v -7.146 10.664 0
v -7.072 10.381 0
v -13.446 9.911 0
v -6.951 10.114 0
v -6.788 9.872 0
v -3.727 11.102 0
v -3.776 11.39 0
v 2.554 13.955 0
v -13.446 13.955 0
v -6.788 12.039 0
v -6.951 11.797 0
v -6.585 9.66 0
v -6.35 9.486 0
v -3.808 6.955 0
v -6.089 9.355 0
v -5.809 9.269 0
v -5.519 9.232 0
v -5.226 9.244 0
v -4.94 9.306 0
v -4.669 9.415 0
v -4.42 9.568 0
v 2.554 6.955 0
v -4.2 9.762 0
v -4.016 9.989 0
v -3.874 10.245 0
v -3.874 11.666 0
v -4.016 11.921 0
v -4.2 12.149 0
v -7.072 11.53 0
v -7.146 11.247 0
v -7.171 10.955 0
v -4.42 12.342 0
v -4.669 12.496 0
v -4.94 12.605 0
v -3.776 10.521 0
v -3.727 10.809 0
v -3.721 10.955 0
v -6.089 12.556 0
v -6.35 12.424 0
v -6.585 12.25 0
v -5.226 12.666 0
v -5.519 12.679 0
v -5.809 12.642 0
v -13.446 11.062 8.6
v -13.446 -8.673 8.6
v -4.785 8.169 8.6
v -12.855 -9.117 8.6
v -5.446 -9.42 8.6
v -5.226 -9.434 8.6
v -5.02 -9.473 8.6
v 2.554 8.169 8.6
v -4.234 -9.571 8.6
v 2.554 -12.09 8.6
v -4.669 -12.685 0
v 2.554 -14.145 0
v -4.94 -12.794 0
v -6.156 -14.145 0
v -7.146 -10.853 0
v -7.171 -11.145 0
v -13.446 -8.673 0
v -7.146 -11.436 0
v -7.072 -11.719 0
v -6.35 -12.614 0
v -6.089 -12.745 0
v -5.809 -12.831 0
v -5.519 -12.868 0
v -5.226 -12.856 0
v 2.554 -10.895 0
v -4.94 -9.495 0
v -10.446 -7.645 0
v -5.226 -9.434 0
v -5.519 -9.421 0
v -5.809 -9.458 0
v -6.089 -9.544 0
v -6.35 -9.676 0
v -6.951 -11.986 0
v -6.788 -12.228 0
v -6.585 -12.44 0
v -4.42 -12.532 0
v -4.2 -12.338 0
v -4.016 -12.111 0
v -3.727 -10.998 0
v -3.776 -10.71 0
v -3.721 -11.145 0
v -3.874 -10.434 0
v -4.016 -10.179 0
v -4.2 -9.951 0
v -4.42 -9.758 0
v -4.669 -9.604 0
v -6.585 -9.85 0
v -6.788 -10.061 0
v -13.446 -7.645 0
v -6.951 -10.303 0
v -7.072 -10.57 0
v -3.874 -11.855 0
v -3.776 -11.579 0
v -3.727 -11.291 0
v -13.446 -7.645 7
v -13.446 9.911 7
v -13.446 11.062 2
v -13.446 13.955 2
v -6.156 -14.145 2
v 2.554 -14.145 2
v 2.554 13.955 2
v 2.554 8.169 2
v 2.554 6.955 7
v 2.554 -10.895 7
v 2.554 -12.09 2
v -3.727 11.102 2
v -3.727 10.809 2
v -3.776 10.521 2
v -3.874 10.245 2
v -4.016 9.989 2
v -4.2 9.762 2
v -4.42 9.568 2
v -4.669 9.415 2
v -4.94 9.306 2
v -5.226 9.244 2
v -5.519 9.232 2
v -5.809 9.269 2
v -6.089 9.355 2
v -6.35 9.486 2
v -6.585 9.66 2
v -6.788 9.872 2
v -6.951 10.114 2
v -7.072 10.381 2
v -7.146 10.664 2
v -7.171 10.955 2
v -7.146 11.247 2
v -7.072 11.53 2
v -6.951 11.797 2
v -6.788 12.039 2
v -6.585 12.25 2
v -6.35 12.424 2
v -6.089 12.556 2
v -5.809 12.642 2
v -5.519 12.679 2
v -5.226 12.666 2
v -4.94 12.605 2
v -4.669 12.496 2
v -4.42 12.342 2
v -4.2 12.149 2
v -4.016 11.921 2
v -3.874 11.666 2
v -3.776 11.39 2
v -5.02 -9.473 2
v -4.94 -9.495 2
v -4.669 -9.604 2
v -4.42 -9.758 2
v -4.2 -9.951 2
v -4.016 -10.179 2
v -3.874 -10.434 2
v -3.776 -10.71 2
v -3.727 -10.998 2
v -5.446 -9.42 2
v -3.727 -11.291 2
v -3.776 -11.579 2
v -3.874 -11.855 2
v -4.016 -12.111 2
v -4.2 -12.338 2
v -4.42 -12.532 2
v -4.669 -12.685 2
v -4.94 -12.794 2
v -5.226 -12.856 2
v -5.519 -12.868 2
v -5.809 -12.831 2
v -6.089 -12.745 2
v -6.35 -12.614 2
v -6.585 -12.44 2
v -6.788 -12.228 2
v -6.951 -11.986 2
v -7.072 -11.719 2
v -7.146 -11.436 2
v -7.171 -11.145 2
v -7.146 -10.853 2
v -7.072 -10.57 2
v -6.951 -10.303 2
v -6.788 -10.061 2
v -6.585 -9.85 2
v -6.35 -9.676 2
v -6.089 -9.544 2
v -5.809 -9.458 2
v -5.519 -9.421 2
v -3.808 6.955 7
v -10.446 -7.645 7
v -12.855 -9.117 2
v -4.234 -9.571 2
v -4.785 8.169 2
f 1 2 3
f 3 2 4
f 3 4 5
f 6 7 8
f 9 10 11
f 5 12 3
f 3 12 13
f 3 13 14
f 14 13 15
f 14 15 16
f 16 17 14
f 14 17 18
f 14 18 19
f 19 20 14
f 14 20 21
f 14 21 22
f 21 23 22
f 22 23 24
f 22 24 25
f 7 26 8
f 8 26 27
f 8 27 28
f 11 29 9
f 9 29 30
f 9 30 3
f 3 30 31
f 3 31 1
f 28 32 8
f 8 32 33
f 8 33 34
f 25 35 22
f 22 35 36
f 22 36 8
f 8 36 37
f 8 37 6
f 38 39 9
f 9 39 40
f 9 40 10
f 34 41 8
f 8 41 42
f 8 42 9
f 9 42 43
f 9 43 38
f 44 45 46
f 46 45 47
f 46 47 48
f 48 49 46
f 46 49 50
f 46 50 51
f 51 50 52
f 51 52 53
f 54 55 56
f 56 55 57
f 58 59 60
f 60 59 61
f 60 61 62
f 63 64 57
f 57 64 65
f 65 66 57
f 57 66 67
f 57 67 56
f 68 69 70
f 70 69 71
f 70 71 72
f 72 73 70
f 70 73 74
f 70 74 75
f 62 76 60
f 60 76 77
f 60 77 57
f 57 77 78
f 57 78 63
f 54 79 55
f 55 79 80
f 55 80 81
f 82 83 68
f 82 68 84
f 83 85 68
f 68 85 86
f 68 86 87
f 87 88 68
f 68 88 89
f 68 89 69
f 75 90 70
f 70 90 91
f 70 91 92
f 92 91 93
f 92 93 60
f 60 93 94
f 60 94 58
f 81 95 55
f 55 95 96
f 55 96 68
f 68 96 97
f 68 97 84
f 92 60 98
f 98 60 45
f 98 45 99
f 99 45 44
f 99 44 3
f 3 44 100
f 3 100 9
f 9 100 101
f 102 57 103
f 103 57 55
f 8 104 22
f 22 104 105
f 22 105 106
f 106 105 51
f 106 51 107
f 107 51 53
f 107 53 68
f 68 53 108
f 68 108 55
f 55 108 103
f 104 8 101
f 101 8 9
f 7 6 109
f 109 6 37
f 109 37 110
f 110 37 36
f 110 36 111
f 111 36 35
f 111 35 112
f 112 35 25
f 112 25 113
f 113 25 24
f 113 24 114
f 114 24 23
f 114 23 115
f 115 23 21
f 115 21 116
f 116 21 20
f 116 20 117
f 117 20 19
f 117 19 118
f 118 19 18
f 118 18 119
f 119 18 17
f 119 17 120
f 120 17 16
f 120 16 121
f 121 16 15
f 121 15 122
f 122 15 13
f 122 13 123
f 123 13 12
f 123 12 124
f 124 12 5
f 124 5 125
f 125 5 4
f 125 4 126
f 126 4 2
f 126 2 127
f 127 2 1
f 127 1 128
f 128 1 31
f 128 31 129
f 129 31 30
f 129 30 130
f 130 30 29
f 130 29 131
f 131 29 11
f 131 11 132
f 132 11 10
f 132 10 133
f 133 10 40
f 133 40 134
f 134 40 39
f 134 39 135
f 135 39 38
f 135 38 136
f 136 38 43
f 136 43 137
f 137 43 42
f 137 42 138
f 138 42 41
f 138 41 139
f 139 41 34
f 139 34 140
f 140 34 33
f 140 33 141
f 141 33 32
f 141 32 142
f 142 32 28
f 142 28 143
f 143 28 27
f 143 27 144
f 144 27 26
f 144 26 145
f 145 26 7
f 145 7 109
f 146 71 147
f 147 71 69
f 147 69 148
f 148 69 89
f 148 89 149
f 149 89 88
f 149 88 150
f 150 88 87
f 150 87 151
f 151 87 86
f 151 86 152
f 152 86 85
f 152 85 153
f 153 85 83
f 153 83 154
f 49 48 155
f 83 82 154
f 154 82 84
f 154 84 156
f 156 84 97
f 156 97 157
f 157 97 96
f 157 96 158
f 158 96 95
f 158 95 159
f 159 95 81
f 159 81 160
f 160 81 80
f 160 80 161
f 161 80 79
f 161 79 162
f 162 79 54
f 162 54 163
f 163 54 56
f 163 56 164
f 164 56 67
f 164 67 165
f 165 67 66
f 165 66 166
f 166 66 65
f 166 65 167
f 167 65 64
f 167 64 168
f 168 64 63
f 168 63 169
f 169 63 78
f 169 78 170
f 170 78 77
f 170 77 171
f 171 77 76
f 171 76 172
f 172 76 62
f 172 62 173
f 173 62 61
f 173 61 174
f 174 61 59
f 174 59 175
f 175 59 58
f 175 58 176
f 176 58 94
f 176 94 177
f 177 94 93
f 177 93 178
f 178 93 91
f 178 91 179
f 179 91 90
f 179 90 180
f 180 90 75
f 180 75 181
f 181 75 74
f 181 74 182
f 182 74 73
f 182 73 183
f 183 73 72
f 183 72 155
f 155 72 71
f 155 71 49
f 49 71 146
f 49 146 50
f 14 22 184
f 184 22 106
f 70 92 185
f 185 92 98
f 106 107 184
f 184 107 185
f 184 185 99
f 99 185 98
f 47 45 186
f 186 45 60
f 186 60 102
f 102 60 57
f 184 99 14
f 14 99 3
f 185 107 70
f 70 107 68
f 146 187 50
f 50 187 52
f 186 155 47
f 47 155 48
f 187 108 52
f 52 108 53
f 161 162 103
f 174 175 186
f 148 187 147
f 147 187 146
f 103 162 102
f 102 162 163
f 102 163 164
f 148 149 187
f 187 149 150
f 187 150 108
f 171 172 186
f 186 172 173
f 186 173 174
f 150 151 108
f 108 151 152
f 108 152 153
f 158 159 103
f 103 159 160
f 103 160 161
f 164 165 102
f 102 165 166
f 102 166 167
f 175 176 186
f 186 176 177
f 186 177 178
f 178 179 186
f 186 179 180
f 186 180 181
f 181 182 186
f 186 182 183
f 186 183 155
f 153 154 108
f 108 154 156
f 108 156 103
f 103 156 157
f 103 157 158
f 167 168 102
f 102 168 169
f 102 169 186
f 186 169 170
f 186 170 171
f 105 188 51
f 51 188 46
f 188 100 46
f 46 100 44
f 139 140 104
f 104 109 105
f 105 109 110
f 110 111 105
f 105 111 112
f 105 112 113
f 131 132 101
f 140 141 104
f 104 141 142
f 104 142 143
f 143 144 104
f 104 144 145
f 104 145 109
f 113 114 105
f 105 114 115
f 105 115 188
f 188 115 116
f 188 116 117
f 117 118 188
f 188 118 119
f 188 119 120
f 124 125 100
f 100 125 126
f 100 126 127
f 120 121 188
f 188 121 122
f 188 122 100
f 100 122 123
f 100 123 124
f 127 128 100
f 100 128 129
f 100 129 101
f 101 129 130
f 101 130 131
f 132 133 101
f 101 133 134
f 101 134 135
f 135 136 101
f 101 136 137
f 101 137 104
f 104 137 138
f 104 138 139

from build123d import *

# Parameters (mm, degrees)
ESQUISSE1_W             = 16
ESQUISSE1_H             = 28.1
ESQUISSE1_R             = 1.725
BOSS_EXTRU_1_DEPTH      = 8.6
ESQUISSE2_W             = 16
ESQUISSE2_H             = 14.6
ENL_V_MAT_EXTRU_2_DEPTH = 7
ENL_V_MAT_EXTRU_5_DEPTH = 16
ENL_V_MAT_EXTRU_6_DEPTH = 7
ENL_V_START             = -2
ENL_V_MAT_EXTRU_9_DEPTH = 18


with BuildPart() as part:
    # Esquisse1 → Boss.-Extru.1 (new body)
    with BuildSketch(Plane.XY):
        with Locations((-5.445538763, -0.094706778)):
            Rectangle(ESQUISSE1_W, ESQUISSE1_H)
        with Locations(Location((-5.445538763, 10.955293222, 0), (0, 0, 180))):
            Circle(ESQUISSE1_R, mode=Mode.SUBTRACT)
        with Locations(Location((-5.445538763, -11.144706778, 0), (0, 0, 180))):
            Circle(ESQUISSE1_R, mode=Mode.SUBTRACT)
    extrude(amount=BOSS_EXTRU_1_DEPTH)

    # Esquisse2 → Enlèv. mat.-Extru.2 (cut)
    with BuildSketch(Plane(origin=(0, 0, 0), x_dir=(-1, 0, 0), z_dir=(0, 0, -1))):
        with Locations((5.445538763, -0.344706778)):
            Rectangle(ESQUISSE2_W, ESQUISSE2_H)
    extrude(amount=-ENL_V_MAT_EXTRU_2_DEPTH, mode=Mode.SUBTRACT)

    # Esquisse4 → Enlèv. mat.-Extru.5 (cut)
    with BuildSketch(Plane(origin=(0, 0, 0), x_dir=(-1, 0, 0), z_dir=(0, 0, -1))):
        Polygon((8.103346265, -14.144706778), (13.445538763, -14.144706778), (13.445538763, -8.673372576), (6.156041758, -14.144706778), align=None)
    extrude(amount=-ENL_V_MAT_EXTRU_5_DEPTH, mode=Mode.SUBTRACT)

    # Esquisse5 → Enlèv. mat.-Extru.6 (cut)
    with BuildSketch(Plane(origin=(0, 0, 0), x_dir=(-1, 0, 0), z_dir=(0, 0, -1))):
        Polygon((-2.554461237, -7.644706778), (-2.554461237, -10.894706778), (10.445538763, -7.644706778), align=None)
        Polygon((13.445538763, 6.955293222), (13.445538763, 9.910651633), (3.808396856, 6.955293222), align=None)
    extrude(amount=-ENL_V_MAT_EXTRU_6_DEPTH, mode=Mode.SUBTRACT)

    # Esquisse6 → Enlèv. mat.-Extru.9 (cut)
    with BuildSketch(Plane(origin=(0, 0, 0), x_dir=(-1, 0, 0), z_dir=(0, 0, -1)).offset(ENL_V_START)):
        Polygon((-2.554461237, 13.955293222), (-2.554461237, 8.169439353), (4.78538363, 8.169439353), (13.445538763, 11.062366287), (13.445538763, 13.955293222), align=None)
        with BuildLine():
            Line((6.156041758, -14.144706778), (12.854526116, -9.116973515))
            Line((12.854526116, -9.116973515), (5.445538763, -9.419706778))
            ThreePointArc((5.445538763, -9.419706778), (6.66529796, -9.924947581), (7.170538763, -11.144706778))
            ThreePointArc((7.170538763, -11.144706778), (4.386718709, -12.506516271), (5.020364742, -9.472925677))
            Line((5.020364742, -9.472925677), (4.233785553, -9.571381546))
            Line((4.233785553, -9.571381546), (-2.554461237, -12.089845576))
            Line((-2.554461237, -12.089845576), (-2.554461237, -14.144706778))
            Line((-2.554461237, -14.144706778), (6.156041758, -14.144706778))
        make_face()
    extrude(amount=-ENL_V_MAT_EXTRU_9_DEPTH, mode=Mode.SUBTRACT)


solid = part.part
